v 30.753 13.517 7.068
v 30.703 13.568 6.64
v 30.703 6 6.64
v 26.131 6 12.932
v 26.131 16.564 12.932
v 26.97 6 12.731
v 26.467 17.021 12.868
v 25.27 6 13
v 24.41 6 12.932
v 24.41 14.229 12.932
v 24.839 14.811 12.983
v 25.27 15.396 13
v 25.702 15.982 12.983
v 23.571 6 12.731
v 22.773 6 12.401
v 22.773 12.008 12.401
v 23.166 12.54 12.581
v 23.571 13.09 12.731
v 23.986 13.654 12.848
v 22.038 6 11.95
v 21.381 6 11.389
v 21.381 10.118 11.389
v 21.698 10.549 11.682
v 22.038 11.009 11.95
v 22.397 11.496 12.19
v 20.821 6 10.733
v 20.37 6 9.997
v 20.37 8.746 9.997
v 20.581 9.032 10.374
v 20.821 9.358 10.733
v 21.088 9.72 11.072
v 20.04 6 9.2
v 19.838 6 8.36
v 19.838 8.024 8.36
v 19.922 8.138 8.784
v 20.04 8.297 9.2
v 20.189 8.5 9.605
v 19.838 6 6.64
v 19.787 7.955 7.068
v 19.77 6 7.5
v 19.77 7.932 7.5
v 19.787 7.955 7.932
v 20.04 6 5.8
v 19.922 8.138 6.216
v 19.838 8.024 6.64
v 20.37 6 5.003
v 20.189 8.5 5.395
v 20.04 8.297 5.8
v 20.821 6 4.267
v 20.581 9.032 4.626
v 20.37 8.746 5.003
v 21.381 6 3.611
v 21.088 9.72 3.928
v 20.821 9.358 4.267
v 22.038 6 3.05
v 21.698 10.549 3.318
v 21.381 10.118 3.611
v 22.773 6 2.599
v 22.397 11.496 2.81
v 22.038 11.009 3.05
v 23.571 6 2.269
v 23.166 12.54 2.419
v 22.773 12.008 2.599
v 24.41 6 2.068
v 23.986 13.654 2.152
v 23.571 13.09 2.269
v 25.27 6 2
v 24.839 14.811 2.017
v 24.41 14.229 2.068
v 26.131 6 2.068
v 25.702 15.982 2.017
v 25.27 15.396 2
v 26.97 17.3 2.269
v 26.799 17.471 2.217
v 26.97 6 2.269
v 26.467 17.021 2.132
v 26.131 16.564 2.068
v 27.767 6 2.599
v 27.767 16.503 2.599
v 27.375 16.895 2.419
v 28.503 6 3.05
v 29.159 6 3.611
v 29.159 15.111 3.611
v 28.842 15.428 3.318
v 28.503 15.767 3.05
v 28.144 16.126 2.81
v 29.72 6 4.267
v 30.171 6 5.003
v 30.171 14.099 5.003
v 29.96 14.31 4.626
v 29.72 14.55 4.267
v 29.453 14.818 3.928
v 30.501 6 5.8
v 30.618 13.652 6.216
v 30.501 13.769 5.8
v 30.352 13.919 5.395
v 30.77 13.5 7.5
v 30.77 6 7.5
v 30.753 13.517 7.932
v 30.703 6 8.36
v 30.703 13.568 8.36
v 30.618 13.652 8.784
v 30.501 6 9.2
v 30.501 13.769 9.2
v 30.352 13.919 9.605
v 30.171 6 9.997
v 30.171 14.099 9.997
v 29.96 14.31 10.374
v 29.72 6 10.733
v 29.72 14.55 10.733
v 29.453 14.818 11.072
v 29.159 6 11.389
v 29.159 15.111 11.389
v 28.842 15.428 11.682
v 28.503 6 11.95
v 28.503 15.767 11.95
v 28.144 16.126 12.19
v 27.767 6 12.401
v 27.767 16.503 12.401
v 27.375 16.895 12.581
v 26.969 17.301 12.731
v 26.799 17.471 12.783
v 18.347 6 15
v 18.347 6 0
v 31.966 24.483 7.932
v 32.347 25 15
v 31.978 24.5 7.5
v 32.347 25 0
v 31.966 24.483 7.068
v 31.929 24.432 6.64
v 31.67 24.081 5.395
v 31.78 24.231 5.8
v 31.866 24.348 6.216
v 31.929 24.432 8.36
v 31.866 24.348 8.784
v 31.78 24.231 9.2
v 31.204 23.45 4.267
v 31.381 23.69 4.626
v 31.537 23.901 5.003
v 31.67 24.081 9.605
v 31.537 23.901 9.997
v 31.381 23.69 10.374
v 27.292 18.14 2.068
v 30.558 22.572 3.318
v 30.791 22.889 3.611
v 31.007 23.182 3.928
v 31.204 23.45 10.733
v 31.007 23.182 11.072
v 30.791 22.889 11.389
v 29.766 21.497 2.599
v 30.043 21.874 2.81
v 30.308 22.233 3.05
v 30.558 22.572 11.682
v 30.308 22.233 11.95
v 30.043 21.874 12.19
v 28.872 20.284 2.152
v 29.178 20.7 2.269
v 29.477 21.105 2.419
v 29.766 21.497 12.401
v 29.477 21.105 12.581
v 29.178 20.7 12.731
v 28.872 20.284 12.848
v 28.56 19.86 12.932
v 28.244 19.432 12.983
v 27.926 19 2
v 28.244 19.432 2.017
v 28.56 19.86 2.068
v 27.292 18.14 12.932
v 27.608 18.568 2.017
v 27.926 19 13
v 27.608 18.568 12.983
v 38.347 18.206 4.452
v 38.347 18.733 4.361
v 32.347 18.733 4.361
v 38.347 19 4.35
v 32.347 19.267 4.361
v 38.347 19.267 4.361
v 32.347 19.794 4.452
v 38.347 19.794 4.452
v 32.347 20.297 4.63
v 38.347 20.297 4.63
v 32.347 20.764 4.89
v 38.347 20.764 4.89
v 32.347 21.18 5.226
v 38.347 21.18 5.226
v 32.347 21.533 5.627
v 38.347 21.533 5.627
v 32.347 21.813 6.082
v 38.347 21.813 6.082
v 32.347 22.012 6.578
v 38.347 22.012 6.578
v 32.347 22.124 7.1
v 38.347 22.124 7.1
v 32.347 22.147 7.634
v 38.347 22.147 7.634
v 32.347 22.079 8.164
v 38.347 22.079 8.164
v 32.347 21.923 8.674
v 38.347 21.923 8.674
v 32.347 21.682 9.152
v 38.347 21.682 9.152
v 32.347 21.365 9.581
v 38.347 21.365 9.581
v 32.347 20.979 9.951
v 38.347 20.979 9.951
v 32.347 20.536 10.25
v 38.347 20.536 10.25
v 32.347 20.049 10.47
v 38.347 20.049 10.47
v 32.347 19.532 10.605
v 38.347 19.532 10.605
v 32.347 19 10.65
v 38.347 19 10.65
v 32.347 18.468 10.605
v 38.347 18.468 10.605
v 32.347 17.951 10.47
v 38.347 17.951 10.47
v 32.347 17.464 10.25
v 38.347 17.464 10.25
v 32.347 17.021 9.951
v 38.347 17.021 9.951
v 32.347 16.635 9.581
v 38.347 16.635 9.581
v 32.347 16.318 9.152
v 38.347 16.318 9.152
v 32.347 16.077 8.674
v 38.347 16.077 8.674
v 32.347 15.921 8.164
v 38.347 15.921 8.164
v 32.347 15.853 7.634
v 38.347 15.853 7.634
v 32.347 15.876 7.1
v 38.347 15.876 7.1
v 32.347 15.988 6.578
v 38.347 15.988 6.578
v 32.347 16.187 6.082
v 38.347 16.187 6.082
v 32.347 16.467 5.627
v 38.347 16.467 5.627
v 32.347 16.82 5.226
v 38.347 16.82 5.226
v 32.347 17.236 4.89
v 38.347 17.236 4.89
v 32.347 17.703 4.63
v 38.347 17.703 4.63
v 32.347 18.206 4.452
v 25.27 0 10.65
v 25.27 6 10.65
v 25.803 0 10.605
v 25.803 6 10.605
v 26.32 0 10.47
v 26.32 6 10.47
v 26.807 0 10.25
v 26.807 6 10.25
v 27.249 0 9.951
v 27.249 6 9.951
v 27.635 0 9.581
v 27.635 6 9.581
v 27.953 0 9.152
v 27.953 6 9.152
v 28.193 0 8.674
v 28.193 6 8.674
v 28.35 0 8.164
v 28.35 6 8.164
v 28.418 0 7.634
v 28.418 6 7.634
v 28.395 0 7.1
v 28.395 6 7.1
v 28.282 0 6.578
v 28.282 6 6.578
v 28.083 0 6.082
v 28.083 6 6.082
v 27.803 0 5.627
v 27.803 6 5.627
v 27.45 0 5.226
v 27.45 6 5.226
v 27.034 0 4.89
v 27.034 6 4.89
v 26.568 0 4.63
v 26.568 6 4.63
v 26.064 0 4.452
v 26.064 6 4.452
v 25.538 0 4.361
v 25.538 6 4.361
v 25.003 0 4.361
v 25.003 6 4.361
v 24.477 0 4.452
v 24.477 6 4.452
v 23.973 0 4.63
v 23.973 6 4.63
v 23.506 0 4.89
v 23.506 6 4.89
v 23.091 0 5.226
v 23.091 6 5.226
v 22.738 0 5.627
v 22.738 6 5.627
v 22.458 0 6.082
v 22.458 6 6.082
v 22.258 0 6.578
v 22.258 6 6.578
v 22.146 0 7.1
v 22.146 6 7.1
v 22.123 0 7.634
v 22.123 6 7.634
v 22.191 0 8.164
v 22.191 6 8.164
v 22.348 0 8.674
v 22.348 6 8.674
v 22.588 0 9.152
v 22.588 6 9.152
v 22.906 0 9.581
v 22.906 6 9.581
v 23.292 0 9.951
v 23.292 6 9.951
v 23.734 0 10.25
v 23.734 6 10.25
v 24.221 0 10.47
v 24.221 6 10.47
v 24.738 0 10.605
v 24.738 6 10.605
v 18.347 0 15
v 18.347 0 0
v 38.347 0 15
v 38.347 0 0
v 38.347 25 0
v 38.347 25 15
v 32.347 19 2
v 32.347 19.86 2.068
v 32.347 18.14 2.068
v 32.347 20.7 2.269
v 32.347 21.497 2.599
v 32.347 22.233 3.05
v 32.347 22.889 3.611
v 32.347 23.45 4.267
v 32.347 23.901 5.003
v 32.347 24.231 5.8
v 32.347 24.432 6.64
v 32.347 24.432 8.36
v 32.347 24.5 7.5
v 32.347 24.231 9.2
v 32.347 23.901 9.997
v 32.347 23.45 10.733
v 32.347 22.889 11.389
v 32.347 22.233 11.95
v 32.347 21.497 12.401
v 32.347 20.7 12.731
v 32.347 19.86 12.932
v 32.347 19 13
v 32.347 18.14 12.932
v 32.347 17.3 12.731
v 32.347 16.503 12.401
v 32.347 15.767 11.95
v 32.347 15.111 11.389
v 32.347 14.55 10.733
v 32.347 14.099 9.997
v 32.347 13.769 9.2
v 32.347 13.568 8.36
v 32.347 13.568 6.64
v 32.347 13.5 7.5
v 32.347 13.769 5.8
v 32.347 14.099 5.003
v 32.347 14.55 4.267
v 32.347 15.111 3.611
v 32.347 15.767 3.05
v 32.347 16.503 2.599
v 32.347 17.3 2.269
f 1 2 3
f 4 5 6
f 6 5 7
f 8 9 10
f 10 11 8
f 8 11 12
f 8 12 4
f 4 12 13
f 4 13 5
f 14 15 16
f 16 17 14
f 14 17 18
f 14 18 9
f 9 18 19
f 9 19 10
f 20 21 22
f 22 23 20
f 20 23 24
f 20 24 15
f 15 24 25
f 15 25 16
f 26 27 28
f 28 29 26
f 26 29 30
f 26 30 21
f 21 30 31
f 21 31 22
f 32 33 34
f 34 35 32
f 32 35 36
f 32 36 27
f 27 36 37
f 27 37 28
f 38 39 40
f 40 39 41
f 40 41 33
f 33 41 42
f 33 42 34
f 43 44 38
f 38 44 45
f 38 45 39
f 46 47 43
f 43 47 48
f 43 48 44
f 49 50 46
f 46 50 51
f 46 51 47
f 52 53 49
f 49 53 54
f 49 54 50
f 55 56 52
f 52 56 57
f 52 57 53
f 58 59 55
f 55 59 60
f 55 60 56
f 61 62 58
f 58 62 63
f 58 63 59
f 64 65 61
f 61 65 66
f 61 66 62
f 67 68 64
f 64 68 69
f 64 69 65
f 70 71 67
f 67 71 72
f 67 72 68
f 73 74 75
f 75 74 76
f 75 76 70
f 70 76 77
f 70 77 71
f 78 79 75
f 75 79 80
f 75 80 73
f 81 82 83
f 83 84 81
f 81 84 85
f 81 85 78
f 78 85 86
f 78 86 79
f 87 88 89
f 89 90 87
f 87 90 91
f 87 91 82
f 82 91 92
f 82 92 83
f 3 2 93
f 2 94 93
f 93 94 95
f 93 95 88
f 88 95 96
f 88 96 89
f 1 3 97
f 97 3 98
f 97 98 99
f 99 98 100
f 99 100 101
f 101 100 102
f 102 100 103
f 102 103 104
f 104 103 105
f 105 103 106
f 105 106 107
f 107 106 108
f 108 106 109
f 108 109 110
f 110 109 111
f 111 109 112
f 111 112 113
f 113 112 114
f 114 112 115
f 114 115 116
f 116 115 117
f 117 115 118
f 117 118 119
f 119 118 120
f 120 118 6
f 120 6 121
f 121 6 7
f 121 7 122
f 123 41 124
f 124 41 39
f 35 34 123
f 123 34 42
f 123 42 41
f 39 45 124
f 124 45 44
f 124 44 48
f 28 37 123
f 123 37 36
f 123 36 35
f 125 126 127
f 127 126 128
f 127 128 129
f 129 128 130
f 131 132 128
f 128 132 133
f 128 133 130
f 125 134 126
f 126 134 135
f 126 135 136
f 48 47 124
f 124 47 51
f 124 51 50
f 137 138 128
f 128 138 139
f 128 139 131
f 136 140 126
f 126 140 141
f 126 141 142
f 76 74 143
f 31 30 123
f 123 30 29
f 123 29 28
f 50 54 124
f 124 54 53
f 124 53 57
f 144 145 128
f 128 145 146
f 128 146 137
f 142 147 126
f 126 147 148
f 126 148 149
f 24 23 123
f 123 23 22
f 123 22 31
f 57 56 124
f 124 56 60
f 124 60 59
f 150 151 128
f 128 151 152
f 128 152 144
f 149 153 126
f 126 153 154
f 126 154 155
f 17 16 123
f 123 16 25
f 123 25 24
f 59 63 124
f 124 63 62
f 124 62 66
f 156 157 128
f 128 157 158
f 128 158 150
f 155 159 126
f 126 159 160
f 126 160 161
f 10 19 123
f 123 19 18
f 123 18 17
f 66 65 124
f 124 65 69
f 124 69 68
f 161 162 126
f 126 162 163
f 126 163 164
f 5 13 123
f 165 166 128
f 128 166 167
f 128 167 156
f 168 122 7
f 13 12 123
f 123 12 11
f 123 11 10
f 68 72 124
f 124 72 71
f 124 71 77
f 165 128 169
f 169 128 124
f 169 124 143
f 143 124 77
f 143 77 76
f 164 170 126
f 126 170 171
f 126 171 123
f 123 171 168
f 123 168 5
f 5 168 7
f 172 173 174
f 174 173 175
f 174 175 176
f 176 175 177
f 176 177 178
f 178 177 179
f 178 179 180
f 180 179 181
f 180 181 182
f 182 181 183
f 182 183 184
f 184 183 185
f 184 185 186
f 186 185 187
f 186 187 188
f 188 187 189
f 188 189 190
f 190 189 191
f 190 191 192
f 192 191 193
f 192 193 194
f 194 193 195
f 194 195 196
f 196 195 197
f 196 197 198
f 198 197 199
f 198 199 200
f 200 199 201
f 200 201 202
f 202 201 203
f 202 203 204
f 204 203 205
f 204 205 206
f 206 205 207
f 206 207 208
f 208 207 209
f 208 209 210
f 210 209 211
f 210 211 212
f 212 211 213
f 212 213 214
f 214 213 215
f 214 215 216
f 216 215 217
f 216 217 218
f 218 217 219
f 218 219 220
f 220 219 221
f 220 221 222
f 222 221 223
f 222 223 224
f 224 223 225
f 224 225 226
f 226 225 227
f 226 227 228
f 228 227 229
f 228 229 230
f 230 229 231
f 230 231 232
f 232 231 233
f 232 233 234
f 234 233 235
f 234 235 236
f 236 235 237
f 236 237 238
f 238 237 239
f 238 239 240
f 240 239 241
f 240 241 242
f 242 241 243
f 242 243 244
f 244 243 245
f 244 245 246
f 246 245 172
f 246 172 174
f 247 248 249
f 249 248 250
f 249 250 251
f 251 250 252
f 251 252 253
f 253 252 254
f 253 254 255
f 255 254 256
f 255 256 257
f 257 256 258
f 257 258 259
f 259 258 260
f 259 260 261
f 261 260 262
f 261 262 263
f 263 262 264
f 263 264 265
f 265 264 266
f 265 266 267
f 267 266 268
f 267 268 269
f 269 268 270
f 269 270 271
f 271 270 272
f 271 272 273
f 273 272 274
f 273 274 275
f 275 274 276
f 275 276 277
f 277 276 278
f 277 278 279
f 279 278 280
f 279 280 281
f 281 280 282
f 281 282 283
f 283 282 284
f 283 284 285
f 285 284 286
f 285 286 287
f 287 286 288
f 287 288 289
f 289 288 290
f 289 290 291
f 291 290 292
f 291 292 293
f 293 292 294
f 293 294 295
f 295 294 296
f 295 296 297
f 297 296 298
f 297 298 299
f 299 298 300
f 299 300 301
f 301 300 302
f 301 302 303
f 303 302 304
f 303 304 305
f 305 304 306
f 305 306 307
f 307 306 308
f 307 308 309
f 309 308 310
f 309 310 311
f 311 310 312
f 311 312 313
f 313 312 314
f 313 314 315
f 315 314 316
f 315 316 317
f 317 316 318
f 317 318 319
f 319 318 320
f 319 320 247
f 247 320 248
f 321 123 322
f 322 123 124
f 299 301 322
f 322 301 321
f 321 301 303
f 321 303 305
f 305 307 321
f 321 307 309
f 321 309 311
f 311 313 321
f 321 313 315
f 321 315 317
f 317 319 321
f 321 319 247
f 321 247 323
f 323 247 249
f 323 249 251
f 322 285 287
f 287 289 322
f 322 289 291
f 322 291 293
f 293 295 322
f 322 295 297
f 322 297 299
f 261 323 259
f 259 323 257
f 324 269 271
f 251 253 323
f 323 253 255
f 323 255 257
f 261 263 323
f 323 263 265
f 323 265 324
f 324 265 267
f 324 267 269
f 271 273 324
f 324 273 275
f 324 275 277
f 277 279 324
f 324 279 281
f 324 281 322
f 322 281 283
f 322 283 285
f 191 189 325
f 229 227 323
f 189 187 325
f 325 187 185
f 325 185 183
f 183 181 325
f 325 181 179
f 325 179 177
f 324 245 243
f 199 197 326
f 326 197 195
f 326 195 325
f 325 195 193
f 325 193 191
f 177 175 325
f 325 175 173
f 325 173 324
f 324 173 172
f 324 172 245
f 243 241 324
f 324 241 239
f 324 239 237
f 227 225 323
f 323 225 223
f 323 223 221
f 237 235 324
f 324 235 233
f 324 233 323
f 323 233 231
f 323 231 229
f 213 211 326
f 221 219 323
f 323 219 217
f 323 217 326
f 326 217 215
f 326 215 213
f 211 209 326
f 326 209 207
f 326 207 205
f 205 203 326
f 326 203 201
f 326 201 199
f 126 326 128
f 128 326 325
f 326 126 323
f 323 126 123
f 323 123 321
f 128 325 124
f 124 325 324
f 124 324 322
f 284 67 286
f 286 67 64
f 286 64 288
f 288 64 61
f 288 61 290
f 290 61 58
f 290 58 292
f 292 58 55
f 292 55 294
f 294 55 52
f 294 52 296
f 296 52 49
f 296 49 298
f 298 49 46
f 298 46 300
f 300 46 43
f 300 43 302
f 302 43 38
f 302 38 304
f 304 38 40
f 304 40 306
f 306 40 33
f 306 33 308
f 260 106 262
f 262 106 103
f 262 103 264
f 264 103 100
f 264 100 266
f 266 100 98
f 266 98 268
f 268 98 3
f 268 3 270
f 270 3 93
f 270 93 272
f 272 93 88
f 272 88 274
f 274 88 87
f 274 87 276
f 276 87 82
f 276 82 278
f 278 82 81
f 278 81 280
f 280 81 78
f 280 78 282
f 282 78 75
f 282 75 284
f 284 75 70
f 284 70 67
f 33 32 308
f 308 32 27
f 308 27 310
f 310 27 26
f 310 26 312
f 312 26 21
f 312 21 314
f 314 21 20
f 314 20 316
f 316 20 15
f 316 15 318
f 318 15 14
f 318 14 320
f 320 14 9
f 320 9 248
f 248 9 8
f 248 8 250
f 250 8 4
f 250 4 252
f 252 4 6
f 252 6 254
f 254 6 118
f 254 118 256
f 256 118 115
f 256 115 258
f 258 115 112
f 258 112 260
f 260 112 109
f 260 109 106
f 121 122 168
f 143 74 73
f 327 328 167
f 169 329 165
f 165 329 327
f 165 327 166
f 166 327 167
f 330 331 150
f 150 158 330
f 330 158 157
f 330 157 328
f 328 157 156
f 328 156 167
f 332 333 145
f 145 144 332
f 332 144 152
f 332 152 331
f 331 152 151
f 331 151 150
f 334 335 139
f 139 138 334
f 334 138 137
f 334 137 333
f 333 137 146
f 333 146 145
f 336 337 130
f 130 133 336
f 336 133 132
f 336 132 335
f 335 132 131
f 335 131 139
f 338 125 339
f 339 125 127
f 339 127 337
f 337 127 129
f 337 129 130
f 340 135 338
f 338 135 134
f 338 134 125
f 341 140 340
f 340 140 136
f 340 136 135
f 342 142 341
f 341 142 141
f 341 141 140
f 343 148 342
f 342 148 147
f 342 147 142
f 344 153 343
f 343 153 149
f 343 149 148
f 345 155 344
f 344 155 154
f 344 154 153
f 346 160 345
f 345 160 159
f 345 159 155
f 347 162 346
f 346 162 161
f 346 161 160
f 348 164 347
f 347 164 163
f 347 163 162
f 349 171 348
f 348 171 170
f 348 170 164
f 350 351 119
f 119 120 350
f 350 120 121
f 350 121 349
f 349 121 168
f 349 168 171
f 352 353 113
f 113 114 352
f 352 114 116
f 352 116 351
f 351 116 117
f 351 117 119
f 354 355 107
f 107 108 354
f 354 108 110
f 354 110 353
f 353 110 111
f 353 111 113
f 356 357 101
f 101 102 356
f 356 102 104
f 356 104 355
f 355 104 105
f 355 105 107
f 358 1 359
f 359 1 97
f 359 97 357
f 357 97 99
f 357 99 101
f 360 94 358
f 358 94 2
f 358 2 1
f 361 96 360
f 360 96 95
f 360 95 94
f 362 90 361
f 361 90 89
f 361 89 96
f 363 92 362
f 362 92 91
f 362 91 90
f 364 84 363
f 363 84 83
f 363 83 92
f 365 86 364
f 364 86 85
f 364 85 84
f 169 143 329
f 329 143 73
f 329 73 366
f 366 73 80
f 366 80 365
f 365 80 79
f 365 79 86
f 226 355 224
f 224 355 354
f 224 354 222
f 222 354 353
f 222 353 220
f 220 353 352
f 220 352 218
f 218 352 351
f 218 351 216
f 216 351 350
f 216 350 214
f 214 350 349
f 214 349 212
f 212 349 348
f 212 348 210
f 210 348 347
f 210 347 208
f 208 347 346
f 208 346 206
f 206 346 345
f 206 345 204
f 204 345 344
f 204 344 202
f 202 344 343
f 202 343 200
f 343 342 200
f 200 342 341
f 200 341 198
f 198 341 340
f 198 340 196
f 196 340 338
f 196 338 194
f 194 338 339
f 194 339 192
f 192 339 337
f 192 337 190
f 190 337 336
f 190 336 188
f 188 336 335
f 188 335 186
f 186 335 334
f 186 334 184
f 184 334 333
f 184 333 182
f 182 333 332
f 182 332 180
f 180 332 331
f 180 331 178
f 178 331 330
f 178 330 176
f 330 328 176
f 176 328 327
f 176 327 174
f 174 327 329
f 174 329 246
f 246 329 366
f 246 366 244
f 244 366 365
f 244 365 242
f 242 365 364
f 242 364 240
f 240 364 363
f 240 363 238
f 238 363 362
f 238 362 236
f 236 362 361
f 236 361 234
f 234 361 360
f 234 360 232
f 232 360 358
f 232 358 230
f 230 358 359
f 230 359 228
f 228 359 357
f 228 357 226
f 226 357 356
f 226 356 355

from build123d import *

# Parameters (mm, degrees)
BOSS_EXTRUDE2_DEPTH = 15
SKETCH4_R           = 3.15
CUT_EXTRUDE1_DEPTH  = 46.776415929
SKETCH4_3_R         = 5.5
SKETCH4_3_R_2       = 3.15
CUT_EXTRUDE2_DEPTH  = 14
SKETCH6_R           = 3.15
CUT_EXTRUDE3_DEPTH  = 49.171363436
SKETCH6_3_R         = 5.5
SKETCH6_3_R_2       = 3.15
CUT_EXTRUDE4_DEPTH  = 32.34684153


with BuildPart() as part:
    # Sketch3 → Boss-Extrude2 (new body)
    with BuildSketch(Plane.XY):
        Polygon((18.34684153, 0), (38.34684153, 0), (38.34684153, 25), (32.34684153, 25), (18.34684153, 6), align=None)
    extrude(amount=BOSS_EXTRUDE2_DEPTH)

    # Sketch4 → Cut-Extrude1 (cut, through all)
    with BuildSketch(Plane(origin=(0, 20, 0), x_dir=(1, 0, 0), z_dir=(0, 1, 0))):
        with Locations(Location((25.27040153, -7.5, 0), (0, 0, 270))):
            Circle(SKETCH4_R)
    extrude(amount=-CUT_EXTRUDE1_DEPTH, mode=Mode.SUBTRACT)

    # Sketch4<3> → Cut-Extrude2 (cut)
    with BuildSketch(Plane(origin=(0, 20, 0), x_dir=(1, 0, 0), z_dir=(0, 1, 0))):
        with Locations(Location((25.27040153, -7.5, 0), (0, 0, 270))):
            Circle(SKETCH4_3_R)
        with Locations(Location((25.27040153, -7.5, 0), (0, 0, 270))):
            Circle(SKETCH4_3_R_2, mode=Mode.SUBTRACT)
    extrude(amount=-CUT_EXTRUDE2_DEPTH, mode=Mode.SUBTRACT)

    # Sketch6 → Cut-Extrude3 (cut, through all)
    with BuildSketch(Plane(origin=(0, 0, 0), x_dir=(0, 0, -1), z_dir=(1, 0, 0))):
        with Locations(Location((-7.5, 19, 0), (0, 0, 161.490595018))):
            Circle(SKETCH6_R)
    extrude(amount=CUT_EXTRUDE3_DEPTH, mode=Mode.SUBTRACT)

    # Sketch6<3> → Cut-Extrude4 (cut)
    with BuildSketch(Plane(origin=(0, 0, 0), x_dir=(0, 0, -1), z_dir=(1, 0, 0))):
        with Locations(Location((-7.5, 19, 0), (0, 0, 180))):
            Circle(SKETCH6_3_R)
        with Locations(Location((-7.5, 19, 0), (0, 0, 180))):
            Circle(SKETCH6_3_R_2, mode=Mode.SUBTRACT)
    extrude(amount=CUT_EXTRUDE4_DEPTH, mode=Mode.SUBTRACT)


solid = part.part
